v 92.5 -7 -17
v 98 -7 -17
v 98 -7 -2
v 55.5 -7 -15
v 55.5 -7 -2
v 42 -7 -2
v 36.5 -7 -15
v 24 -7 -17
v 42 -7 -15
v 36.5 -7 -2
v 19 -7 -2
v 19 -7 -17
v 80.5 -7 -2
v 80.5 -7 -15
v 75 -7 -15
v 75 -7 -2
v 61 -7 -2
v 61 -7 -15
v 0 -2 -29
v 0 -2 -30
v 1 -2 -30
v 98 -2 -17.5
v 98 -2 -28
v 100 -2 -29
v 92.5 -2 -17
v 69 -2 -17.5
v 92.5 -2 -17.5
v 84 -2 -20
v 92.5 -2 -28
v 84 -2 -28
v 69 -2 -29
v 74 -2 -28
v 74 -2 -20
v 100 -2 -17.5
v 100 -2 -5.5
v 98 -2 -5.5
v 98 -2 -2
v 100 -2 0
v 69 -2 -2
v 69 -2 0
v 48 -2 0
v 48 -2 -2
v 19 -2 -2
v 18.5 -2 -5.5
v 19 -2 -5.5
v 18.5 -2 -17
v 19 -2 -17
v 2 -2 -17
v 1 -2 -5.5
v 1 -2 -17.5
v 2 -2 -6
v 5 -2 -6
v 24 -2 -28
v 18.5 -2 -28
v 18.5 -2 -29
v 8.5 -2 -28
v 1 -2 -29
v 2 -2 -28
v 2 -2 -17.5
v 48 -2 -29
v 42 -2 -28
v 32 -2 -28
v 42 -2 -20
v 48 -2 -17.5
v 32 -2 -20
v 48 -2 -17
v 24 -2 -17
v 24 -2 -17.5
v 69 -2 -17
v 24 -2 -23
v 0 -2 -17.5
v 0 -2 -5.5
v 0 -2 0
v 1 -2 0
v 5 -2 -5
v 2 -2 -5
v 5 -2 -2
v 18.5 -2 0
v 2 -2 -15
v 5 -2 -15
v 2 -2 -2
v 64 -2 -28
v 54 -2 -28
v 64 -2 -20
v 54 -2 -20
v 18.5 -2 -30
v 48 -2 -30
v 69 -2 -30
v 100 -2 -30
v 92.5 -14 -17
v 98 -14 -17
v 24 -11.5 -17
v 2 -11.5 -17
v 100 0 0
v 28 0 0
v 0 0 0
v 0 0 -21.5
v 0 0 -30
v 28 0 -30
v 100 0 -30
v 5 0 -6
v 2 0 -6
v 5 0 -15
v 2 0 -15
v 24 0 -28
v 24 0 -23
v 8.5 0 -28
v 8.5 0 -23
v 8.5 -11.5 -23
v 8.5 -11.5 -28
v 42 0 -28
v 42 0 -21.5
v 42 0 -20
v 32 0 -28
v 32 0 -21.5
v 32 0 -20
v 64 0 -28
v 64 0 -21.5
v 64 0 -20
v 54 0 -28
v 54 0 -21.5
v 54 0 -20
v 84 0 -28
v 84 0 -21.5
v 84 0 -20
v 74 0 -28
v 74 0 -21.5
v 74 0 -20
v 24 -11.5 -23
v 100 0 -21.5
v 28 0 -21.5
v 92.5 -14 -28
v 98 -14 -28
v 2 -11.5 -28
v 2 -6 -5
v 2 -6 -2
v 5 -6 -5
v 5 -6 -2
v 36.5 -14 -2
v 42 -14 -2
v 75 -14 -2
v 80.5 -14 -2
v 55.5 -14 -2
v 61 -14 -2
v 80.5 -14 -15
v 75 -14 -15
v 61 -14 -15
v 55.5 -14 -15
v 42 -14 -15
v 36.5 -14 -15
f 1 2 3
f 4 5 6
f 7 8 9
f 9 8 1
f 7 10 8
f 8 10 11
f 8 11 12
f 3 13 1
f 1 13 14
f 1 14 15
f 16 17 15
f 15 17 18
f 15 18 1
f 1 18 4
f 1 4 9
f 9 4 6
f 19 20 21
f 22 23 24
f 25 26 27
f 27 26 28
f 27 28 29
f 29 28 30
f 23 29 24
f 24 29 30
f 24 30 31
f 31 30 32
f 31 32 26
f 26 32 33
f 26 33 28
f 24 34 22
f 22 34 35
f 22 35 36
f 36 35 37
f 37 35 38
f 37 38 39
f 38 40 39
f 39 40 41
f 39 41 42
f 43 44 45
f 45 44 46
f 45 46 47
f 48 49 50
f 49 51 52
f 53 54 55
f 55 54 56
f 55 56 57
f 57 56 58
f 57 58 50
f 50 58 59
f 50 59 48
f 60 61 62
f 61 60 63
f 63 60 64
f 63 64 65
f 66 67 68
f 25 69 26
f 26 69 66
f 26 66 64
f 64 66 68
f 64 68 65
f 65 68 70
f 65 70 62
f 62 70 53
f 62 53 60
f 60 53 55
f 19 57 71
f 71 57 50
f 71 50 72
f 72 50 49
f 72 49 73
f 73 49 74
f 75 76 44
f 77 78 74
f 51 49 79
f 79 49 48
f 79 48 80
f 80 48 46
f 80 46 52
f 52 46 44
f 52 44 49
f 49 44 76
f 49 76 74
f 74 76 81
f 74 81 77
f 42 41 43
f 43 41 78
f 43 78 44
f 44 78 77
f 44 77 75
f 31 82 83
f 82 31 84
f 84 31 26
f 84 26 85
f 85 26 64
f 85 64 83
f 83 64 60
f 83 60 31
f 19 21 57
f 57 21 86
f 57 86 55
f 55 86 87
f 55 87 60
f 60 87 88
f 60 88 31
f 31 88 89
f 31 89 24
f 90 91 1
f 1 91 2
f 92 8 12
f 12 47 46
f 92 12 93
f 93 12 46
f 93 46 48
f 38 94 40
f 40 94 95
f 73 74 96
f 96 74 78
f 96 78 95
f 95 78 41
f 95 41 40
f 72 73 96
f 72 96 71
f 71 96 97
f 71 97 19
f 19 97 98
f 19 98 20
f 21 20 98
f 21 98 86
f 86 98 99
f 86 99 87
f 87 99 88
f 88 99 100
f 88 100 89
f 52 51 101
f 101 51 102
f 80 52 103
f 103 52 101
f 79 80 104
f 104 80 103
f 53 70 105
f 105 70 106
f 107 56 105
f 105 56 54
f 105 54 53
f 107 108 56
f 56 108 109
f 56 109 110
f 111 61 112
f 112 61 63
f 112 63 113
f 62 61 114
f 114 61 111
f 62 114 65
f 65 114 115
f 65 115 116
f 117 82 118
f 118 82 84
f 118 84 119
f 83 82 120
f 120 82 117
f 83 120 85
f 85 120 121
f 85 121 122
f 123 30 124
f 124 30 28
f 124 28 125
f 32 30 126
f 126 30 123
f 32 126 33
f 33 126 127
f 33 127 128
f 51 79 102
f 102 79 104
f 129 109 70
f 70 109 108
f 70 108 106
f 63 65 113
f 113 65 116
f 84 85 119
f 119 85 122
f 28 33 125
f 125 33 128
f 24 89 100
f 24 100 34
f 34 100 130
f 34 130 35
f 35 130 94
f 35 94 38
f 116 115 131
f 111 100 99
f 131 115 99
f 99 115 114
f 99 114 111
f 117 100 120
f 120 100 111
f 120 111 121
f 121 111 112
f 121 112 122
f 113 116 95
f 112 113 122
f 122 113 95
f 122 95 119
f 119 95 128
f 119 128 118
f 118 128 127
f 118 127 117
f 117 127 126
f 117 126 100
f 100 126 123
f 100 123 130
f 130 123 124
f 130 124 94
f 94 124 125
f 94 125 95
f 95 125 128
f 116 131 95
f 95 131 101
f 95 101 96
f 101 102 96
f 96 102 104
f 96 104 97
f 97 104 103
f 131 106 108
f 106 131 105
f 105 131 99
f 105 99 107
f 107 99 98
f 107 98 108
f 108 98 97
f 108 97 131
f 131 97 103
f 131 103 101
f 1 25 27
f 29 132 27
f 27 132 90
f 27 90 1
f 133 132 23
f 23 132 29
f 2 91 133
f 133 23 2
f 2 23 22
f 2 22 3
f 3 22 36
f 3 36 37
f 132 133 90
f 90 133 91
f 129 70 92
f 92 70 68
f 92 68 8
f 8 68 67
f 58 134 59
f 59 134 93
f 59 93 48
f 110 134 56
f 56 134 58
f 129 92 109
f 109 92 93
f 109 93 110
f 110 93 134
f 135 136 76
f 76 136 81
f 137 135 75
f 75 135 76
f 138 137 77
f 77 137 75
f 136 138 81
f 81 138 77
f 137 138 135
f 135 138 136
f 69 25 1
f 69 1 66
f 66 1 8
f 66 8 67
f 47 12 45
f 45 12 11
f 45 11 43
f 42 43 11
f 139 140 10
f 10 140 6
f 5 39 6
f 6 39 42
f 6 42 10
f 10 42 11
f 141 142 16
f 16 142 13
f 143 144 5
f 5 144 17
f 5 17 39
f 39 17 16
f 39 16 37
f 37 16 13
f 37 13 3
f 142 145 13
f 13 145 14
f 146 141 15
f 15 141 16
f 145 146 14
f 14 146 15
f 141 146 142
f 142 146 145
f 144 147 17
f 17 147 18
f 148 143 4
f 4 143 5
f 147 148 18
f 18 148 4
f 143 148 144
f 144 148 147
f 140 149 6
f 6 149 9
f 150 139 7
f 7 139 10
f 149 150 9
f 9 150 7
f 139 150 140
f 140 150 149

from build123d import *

# Parameters (mm, degrees)
SKETCH1_W            = 100
SKETCH1_H            = 30
SKETCH1_W_2          = 3
SKETCH1_H_2          = 9
SKETCH1_W_3          = 10
SKETCH1_H_3          = 8
SKETCH1_W_4          = 15.5
SKETCH1_H_4          = 5
BOSS_EXTRUDE3_DEPTH  = 2
SKETCH2_W            = 5.5
SKETCH2_H            = 11
BOSS_EXTRUDE4_DEPTH  = 12
BOSS_EXTRUDE5_DEPTH  = 9.5
SKETCH9_W            = 3
SKETCH9_H            = 3
BOSS_EXTRUDE17_DEPTH = 4
SKETCH12_W           = 79
SKETCH12_H           = 15
BOSS_EXTRUDE22_DEPTH = 5
SKETCH13_W           = 5.5
SKETCH13_H           = 13
BOSS_EXTRUDE23_DEPTH = 7


with BuildPart() as part:
    # Sketch1 → Boss-Extrude3 (new body)
    with BuildSketch(Plane(origin=(0, 0, 0), x_dir=(1, 0, 0), z_dir=(0, 1, 0))):
        with Locations((50, 15)):
            Rectangle(SKETCH1_W, SKETCH1_H)
        with Locations((3.5, 10.5)):
            Rectangle(SKETCH1_W_2, SKETCH1_H_2, mode=Mode.SUBTRACT)
        with Locations((79, 24)):
            Rectangle(SKETCH1_W_3, SKETCH1_H_3, mode=Mode.SUBTRACT)
        with Locations((59, 24)):
            Rectangle(SKETCH1_W_3, SKETCH1_H_3, mode=Mode.SUBTRACT)
        with Locations((37, 24)):
            Rectangle(SKETCH1_W_3, SKETCH1_H_3, mode=Mode.SUBTRACT)
        with Locations((16.25, 25.5)):
            Rectangle(SKETCH1_W_4, SKETCH1_H_4, mode=Mode.SUBTRACT)
    extrude(amount=-BOSS_EXTRUDE3_DEPTH)

    # Sketch2 → Boss-Extrude4 (add)
    with BuildSketch(Plane.XZ.offset(2)):
        with Locations((95.25, -22.5)):
            Rectangle(SKETCH2_W, SKETCH2_H)
    extrude(amount=BOSS_EXTRUDE4_DEPTH)

    # Sketch3 → Boss-Extrude5 (add)
    with BuildSketch(Plane.XZ.offset(2)):
        Polygon((24, -17), (24, -23), (8.5, -23), (8.5, -28), (2, -28), (2, -17), align=None)
    extrude(amount=BOSS_EXTRUDE5_DEPTH)

    # Sketch9 → Boss-Extrude17 (add)
    with BuildSketch(Plane.XZ.offset(2)):
        with Locations((3.5, -3.5)):
            Rectangle(SKETCH9_W, SKETCH9_H)
    extrude(amount=BOSS_EXTRUDE17_DEPTH)

    # Sketch12 → Boss-Extrude22 (add)
    with BuildSketch(Plane.XZ.offset(2)):
        with Locations((58.5, -9.5)):
            Rectangle(SKETCH12_W, SKETCH12_H)
    extrude(amount=BOSS_EXTRUDE22_DEPTH)

    # Sketch13 → Boss-Extrude23 (add)
    with BuildSketch(Plane.XZ.offset(7)):
        with Locations((39.25, -8.5)):
            Rectangle(SKETCH13_W, SKETCH13_H)
        with Locations((58.25, -8.5)):
            Rectangle(SKETCH13_W, SKETCH13_H)
        with Locations((77.75, -8.5)):
            Rectangle(SKETCH13_W, SKETCH13_H)
    extrude(amount=BOSS_EXTRUDE23_DEPTH)


solid = part.part
